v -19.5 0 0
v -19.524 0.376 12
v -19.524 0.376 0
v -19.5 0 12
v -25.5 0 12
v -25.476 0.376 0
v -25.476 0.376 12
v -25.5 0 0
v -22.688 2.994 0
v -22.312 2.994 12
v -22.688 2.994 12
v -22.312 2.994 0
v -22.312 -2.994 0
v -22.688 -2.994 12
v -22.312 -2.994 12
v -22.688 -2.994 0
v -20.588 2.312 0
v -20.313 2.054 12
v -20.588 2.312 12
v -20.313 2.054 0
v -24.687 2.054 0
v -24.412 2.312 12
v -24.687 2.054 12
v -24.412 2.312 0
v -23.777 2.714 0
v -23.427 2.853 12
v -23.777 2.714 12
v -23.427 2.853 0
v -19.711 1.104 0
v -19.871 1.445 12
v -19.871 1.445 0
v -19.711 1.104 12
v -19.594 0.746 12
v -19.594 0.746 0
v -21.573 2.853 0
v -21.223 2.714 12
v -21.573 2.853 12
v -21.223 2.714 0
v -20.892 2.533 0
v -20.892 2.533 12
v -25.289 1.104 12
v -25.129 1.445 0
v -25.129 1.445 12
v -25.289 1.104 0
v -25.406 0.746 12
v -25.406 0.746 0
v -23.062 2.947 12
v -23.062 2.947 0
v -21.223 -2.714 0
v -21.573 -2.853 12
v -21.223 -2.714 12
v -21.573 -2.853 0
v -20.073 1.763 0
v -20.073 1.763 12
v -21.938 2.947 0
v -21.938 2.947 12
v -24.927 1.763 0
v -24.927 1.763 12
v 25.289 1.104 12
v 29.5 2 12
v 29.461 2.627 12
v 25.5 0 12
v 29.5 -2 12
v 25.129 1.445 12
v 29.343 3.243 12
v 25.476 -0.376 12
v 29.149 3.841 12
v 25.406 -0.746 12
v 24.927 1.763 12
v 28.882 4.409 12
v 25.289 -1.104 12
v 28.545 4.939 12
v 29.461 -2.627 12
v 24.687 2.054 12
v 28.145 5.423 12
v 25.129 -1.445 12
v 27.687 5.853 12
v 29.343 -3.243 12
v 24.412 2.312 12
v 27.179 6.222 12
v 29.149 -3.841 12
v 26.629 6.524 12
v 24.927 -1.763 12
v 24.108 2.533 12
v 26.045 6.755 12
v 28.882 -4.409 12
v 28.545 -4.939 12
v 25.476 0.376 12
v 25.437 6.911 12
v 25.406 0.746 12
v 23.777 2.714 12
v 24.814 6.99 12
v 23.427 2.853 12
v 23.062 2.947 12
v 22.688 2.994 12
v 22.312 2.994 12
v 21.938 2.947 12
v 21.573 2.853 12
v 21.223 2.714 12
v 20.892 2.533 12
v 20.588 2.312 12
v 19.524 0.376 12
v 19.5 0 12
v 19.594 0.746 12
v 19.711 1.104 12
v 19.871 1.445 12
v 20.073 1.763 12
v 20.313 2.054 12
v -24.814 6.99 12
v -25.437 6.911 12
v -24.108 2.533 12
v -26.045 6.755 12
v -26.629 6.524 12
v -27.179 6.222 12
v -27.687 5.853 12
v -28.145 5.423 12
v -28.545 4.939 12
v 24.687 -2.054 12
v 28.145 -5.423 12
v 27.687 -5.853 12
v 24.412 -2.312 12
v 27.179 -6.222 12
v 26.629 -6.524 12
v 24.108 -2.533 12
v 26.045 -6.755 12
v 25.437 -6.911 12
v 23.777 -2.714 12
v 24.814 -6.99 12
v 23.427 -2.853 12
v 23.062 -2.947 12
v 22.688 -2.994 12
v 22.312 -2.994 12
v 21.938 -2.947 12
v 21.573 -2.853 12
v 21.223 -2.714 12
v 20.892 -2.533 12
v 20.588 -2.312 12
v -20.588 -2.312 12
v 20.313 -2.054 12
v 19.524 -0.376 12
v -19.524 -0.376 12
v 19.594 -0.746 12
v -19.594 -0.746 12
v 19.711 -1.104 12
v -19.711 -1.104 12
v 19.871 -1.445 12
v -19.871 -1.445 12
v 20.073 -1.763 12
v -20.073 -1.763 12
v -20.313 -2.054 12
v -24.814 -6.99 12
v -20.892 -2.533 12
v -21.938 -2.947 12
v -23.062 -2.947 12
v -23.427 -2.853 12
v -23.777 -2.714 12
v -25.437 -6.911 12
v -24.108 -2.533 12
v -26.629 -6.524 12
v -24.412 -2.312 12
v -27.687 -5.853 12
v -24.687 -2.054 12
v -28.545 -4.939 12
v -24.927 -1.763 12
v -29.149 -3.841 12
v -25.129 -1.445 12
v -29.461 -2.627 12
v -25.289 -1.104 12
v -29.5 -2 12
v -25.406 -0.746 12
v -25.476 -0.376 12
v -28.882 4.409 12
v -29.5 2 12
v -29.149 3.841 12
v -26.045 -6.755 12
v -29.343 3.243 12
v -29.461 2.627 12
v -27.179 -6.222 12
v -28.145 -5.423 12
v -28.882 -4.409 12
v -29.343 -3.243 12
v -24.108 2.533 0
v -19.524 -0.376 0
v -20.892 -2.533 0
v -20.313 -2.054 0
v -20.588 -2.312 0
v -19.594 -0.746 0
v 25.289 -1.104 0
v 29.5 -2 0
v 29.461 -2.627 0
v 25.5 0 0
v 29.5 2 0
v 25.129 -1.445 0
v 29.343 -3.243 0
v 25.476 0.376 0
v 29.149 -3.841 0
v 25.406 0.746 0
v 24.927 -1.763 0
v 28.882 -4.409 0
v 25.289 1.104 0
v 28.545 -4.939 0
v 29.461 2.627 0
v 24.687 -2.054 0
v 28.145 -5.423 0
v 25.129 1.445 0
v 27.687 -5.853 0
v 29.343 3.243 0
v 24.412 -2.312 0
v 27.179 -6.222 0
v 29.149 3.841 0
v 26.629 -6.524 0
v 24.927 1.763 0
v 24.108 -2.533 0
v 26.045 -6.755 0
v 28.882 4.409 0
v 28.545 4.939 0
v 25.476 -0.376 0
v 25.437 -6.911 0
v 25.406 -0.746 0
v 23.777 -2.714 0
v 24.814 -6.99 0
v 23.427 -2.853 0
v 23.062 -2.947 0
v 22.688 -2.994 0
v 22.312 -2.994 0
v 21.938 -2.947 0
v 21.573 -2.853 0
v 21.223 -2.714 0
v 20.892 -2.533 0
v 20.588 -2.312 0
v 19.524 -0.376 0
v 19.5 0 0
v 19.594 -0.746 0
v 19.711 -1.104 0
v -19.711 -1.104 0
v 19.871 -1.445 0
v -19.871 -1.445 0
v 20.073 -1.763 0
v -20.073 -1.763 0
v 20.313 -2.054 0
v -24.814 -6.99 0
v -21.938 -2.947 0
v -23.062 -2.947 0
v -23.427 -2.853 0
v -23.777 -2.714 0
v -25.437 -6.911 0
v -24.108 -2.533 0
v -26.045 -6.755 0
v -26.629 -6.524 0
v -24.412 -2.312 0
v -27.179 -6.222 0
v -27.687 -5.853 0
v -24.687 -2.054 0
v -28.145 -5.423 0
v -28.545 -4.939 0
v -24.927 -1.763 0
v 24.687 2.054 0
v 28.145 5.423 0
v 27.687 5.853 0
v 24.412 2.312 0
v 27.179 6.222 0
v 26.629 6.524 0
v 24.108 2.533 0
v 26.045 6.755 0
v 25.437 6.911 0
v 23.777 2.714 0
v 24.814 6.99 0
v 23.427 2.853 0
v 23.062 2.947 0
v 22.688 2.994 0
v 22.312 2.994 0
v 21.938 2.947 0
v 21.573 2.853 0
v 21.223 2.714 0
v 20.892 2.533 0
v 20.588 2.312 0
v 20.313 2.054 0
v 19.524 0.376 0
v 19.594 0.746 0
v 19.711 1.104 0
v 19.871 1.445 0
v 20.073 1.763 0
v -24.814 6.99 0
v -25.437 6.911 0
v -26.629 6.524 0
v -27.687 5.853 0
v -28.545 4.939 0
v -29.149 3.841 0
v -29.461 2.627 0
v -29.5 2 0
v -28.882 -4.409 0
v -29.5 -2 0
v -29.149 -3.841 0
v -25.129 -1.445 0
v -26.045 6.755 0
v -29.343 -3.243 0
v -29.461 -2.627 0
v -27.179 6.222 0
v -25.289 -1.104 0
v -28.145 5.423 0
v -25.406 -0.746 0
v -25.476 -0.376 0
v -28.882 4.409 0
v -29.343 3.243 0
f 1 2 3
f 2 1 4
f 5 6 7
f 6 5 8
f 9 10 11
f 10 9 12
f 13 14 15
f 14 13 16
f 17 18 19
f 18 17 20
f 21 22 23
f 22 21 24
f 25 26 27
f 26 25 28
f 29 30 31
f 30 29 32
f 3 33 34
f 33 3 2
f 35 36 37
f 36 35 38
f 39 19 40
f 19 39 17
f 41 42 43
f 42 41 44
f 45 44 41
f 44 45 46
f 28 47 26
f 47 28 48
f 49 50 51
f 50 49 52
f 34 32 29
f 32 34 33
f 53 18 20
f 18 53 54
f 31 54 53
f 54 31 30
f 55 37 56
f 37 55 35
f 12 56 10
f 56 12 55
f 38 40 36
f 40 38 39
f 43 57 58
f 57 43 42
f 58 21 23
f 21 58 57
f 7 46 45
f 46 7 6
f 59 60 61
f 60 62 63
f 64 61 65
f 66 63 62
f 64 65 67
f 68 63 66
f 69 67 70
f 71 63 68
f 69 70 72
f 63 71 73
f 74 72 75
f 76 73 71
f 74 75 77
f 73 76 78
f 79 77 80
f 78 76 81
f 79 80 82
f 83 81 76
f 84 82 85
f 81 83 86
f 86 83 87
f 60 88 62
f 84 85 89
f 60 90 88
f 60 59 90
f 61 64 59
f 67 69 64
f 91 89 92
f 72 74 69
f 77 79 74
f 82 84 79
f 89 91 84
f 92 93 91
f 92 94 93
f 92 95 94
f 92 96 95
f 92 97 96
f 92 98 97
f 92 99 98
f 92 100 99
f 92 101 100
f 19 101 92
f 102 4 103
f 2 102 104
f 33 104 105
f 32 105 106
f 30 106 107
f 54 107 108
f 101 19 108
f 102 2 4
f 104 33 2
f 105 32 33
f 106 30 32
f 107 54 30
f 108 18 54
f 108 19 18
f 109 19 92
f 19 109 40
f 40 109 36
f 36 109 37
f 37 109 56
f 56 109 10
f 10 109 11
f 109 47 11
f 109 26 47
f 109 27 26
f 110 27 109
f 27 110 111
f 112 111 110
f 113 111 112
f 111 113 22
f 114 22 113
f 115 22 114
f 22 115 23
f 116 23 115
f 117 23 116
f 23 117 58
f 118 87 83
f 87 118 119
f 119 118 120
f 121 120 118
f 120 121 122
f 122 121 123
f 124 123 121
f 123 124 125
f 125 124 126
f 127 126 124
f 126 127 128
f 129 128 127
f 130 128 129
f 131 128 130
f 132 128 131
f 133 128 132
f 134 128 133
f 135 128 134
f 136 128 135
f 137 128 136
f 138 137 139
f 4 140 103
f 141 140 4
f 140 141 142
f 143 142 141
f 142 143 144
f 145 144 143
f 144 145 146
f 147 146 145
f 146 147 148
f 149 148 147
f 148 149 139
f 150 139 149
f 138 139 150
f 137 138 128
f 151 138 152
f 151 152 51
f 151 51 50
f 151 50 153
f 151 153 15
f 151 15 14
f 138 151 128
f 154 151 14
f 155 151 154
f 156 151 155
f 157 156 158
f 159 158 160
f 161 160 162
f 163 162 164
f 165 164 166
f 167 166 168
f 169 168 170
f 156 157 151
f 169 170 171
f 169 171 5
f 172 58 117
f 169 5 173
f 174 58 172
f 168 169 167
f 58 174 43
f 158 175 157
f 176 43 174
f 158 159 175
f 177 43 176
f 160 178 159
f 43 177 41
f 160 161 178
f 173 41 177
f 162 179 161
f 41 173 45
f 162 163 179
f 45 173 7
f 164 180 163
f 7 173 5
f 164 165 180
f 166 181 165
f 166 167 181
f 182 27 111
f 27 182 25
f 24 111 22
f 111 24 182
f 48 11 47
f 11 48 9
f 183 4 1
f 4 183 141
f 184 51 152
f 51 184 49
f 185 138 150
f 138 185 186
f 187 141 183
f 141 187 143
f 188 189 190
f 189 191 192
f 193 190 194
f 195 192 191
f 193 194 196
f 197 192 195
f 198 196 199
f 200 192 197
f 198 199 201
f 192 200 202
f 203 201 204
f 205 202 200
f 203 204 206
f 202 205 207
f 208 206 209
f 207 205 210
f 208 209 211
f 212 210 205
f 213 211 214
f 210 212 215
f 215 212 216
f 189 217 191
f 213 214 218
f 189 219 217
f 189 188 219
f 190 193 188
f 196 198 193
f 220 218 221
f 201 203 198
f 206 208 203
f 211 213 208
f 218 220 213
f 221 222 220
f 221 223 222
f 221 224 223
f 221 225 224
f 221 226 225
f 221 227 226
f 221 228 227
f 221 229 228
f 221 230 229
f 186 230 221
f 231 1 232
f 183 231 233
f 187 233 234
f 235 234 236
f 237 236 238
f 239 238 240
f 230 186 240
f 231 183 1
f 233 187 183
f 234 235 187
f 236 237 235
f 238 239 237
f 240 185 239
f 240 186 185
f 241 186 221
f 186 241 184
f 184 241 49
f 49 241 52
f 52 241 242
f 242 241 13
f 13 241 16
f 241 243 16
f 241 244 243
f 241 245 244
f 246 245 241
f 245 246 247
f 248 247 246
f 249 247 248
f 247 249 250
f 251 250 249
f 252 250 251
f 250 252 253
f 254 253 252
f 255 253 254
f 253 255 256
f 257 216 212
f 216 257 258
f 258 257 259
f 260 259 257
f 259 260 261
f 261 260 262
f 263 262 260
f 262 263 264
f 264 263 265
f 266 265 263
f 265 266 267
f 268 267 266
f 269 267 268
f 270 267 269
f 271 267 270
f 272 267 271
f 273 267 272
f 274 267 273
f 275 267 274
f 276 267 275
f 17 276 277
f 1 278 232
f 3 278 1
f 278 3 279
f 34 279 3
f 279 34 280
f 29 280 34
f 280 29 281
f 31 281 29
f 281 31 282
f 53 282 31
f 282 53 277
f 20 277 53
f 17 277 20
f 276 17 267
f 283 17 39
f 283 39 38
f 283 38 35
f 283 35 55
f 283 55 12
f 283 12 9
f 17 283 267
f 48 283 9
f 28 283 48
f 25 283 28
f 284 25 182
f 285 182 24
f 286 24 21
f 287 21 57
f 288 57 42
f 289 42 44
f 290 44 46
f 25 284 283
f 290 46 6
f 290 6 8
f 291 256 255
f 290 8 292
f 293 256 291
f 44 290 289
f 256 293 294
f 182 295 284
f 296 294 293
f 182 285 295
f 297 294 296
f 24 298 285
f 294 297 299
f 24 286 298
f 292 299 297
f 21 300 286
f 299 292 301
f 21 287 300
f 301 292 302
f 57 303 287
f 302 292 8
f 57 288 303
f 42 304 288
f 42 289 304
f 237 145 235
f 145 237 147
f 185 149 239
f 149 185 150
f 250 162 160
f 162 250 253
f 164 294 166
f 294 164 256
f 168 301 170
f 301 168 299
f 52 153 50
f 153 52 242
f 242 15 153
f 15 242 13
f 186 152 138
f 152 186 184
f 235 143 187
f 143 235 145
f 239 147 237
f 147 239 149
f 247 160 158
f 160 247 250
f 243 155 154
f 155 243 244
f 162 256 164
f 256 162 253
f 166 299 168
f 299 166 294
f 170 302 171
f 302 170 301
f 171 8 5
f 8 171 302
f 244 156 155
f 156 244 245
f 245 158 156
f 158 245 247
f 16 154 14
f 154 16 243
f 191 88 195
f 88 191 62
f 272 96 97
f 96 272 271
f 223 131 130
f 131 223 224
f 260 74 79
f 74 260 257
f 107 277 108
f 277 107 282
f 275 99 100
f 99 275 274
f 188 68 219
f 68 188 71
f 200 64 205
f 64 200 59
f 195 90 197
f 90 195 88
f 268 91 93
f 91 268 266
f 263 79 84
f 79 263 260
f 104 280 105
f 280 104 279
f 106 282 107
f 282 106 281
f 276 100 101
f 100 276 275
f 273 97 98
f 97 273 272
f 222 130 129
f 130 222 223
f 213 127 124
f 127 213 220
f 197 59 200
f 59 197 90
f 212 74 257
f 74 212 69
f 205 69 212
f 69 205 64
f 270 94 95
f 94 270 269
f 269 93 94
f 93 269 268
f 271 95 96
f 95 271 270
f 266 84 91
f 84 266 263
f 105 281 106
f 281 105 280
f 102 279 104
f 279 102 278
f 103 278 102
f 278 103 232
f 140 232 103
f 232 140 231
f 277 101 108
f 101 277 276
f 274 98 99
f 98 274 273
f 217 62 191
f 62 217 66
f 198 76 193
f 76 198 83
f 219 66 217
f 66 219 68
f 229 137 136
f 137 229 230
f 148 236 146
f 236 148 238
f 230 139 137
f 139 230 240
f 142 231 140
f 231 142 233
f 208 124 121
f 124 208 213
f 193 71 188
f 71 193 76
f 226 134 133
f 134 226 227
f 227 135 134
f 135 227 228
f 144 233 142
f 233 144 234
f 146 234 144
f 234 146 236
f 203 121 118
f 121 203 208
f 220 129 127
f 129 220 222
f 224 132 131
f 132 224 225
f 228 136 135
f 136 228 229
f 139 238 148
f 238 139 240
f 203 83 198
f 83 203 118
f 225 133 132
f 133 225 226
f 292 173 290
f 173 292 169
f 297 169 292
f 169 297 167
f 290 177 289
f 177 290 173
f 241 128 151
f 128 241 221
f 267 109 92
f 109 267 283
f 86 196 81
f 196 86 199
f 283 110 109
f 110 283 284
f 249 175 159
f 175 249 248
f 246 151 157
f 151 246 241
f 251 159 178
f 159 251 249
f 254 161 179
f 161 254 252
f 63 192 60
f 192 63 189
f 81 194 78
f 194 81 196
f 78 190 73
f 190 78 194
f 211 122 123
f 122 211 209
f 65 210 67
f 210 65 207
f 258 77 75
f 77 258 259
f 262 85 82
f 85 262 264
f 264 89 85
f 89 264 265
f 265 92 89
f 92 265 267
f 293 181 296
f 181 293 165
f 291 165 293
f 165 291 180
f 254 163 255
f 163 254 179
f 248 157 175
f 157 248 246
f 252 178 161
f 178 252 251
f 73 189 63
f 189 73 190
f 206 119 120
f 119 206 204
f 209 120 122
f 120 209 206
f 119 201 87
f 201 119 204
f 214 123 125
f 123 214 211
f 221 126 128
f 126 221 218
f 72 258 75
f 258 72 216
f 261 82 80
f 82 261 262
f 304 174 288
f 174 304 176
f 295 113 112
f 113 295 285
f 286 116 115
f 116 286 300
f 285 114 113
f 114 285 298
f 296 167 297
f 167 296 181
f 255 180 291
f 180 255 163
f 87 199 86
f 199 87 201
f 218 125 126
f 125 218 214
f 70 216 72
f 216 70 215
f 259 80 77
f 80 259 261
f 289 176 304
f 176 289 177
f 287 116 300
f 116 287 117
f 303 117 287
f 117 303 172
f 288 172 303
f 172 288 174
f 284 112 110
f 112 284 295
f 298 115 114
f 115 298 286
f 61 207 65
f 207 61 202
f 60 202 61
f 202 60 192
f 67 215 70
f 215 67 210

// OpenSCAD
$fn = 50;


difference() {
	union() {
		hull() {
			translate(v = [-24.5000000000, 2.0000000000, 0]) {
				cylinder(h = 12, r = 5);
			}
			translate(v = [24.5000000000, 2.0000000000, 0]) {
				cylinder(h = 12, r = 5);
			}
			translate(v = [-24.5000000000, -2.0000000000, 0]) {
				cylinder(h = 12, r = 5);
			}
			translate(v = [24.5000000000, -2.0000000000, 0]) {
				cylinder(h = 12, r = 5);
			}
		}
	}
	union() {
		translate(v = [-22.5000000000, 0.0000000000, 0]) {
			cylinder(h = 12, r = 3.0000000000);
		}
		translate(v = [22.5000000000, 0.0000000000, 0]) {
			cylinder(h = 12, r = 3.0000000000);
		}
		translate(v = [-22.5000000000, 0.0000000000, 0]) {
			cylinder(h = 12, r = 1.5000000000);
		}
		translate(v = [22.5000000000, 0.0000000000, 0]) {
			cylinder(h = 12, r = 1.5000000000);
		}
		translate(v = [-22.5000000000, 0.0000000000, 0]) {
			cylinder(h = 12, r = 1.5000000000);
		}
		translate(v = [22.5000000000, 0.0000000000, 0]) {
			cylinder(h = 12, r = 1.5000000000);
		}
		translate(v = [-22.5000000000, 0.0000000000, 0]) {
			cylinder(h = 12, r = 1.5000000000);
		}
		translate(v = [22.5000000000, 0.0000000000, 0]) {
			cylinder(h = 12, r = 1.5000000000);
		}
	}
}
